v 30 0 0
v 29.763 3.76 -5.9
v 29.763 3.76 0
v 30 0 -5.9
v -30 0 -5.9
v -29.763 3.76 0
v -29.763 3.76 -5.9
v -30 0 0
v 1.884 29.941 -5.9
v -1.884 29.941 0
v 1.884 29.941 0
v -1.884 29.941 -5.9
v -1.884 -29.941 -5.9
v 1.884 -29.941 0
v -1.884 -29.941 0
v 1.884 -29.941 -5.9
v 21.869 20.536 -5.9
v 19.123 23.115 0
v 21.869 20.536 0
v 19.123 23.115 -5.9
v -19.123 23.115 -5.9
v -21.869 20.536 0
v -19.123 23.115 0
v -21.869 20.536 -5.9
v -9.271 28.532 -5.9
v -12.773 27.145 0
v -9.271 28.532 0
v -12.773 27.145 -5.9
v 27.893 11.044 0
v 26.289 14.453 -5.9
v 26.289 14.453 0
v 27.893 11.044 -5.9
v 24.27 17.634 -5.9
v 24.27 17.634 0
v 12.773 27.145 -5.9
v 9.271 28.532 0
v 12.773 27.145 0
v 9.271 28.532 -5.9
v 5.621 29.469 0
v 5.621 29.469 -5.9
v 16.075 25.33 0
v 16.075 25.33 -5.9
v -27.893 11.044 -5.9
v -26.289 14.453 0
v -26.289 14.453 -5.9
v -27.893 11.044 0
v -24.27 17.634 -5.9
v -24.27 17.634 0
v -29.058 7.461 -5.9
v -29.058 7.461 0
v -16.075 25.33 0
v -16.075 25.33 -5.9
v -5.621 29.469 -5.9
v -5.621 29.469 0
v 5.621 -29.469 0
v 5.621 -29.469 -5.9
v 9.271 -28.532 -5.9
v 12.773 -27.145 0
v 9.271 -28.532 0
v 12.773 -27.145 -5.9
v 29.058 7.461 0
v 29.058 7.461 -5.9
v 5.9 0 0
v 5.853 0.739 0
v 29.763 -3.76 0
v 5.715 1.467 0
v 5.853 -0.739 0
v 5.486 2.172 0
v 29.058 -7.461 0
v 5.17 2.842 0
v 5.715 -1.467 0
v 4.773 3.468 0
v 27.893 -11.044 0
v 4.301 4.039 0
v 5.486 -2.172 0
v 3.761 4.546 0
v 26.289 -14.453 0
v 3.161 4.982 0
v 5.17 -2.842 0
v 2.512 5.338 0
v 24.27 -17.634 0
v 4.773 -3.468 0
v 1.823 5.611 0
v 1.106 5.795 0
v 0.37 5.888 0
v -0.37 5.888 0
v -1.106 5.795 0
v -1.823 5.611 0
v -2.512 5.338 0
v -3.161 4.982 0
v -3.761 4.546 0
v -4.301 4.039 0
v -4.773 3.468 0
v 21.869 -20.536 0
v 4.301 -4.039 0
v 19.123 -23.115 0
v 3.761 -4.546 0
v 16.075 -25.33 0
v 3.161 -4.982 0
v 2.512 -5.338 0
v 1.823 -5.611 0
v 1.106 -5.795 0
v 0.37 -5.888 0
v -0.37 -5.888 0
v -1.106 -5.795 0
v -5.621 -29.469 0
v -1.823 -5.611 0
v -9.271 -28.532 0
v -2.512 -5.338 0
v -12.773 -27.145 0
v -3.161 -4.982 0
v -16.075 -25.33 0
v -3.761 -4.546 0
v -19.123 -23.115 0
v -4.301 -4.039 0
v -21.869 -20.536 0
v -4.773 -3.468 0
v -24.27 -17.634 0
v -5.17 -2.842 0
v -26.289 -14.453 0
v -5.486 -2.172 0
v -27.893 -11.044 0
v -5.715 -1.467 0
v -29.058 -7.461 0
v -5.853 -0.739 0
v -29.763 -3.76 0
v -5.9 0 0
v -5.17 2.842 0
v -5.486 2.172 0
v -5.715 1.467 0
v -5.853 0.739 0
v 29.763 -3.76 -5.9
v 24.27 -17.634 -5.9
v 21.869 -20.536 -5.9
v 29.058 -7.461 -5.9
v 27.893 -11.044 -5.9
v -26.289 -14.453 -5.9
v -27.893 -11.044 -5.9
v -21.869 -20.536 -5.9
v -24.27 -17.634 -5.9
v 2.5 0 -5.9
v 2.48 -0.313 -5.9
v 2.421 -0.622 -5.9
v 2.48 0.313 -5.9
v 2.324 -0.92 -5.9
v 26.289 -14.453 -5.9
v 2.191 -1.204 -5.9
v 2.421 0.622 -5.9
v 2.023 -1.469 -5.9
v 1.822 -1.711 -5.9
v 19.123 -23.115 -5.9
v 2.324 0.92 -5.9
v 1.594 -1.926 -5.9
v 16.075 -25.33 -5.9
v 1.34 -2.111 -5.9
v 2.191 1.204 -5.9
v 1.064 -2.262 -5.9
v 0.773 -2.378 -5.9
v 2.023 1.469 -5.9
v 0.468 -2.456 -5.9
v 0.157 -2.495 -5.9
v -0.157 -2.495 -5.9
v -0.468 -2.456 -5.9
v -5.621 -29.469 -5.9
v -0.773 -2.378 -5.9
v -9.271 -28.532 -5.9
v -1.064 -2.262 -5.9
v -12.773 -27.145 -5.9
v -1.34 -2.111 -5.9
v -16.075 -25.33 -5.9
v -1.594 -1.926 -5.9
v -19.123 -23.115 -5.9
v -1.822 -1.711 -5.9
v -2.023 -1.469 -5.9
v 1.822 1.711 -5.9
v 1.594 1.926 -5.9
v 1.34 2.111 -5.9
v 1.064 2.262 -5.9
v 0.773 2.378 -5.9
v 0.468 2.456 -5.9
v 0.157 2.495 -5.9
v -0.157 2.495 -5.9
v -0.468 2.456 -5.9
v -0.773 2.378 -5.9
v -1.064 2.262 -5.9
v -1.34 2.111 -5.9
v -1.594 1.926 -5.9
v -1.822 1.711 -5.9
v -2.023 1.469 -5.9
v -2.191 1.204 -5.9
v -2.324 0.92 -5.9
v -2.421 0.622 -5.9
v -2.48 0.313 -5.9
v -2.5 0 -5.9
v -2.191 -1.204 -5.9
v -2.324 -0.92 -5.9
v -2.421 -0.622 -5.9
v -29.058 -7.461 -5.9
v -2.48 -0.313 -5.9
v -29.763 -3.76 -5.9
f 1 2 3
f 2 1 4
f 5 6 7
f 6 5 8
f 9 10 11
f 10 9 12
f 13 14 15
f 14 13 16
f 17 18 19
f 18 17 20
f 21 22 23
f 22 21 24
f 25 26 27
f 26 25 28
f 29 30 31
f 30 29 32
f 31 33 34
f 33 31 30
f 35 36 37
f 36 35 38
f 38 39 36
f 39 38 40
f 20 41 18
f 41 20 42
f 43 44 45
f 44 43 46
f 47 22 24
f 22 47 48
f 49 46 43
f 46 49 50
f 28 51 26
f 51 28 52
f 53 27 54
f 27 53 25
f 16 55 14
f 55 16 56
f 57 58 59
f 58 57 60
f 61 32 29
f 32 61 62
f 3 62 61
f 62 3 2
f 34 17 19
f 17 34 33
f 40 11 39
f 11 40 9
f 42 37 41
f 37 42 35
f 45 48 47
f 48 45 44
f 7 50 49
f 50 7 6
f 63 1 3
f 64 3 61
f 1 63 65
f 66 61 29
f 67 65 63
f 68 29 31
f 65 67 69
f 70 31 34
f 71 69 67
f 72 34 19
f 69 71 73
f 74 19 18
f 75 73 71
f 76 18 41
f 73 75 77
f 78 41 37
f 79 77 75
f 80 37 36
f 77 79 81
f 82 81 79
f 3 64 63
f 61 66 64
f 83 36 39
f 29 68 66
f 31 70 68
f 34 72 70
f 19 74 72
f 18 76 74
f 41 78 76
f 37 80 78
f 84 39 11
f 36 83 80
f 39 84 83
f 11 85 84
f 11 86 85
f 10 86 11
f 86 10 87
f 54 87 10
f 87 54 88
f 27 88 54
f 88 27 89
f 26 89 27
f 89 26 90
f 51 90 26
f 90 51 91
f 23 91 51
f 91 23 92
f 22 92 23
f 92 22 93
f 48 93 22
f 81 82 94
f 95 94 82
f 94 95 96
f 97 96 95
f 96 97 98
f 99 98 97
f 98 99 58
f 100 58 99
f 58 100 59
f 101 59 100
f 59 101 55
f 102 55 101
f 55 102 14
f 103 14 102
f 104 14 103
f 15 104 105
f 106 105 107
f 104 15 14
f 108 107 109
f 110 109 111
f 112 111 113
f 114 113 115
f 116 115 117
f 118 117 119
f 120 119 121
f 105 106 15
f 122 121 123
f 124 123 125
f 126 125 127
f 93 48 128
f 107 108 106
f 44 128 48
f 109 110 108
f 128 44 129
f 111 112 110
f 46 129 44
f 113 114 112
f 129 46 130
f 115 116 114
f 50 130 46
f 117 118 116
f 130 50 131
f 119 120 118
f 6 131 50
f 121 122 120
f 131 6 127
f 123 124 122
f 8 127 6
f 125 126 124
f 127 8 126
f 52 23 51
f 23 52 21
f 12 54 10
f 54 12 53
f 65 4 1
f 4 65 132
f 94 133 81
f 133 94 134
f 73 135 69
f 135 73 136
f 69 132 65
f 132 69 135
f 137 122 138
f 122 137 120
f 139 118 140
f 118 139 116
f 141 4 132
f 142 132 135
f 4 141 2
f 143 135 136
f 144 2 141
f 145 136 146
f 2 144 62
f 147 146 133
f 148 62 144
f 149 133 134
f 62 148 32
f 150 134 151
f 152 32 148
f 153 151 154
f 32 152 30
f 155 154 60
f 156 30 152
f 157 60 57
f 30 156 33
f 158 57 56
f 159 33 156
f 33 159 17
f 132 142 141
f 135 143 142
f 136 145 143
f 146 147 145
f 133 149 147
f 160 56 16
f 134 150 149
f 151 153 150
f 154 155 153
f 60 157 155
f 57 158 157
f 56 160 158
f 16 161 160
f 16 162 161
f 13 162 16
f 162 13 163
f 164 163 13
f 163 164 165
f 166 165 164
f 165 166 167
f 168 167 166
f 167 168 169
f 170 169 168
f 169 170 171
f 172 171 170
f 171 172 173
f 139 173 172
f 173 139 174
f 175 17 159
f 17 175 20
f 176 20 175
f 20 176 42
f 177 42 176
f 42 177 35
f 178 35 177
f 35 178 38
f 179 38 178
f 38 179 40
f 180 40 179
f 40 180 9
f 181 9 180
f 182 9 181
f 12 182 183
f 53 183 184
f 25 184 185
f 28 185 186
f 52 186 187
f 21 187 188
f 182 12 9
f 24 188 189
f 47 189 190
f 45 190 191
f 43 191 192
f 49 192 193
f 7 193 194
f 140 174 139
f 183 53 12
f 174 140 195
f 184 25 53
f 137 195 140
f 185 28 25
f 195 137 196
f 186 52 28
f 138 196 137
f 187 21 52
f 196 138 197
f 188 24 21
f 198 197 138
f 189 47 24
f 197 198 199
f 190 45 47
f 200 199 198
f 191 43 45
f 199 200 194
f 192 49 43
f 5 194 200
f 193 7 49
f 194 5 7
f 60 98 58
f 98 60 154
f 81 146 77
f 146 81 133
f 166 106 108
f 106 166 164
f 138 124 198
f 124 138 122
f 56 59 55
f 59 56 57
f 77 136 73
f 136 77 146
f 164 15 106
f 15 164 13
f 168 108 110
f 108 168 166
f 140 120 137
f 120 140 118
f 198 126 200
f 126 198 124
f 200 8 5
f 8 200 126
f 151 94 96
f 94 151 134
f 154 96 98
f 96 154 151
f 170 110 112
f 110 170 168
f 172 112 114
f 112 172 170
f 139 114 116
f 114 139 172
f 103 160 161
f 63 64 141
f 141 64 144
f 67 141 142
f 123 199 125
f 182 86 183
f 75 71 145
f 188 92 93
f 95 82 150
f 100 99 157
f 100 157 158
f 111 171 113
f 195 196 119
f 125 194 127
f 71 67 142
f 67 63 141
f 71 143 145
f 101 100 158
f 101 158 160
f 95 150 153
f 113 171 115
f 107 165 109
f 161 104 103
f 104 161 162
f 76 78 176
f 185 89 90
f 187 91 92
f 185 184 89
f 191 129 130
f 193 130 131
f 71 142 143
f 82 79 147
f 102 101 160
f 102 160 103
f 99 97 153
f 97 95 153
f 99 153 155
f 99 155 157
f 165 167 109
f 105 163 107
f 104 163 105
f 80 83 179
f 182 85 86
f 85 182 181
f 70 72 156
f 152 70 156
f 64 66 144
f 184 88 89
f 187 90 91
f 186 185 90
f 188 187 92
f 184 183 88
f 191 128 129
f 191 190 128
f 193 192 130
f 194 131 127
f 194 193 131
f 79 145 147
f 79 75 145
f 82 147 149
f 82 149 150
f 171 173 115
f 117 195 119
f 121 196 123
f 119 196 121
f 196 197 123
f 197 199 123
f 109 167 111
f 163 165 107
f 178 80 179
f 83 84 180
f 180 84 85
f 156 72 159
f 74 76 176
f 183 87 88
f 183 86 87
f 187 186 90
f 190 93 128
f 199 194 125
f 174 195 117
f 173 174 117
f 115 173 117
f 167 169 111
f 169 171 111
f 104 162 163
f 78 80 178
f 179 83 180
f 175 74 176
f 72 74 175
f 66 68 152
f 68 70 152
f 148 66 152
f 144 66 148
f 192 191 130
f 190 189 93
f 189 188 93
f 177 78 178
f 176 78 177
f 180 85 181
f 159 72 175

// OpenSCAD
$fn = 50;


difference() {
	union() {
		translate(v = [0, 0, -5.9000000000]) {
			cylinder(h = 5.9000000000, r = 30.0000000000);
		}
		translate(v = [0, 0, -5.9000000000]) {
			cylinder(h = 5.9000000000, r = 2.8750000000);
		}
	}
	union() {
		translate(v = [0, 0, 0]) {
			rotate(a = [0, 0, 0]) {
				difference() {
					union() {
						#translate(v = [0, 0, -5.9000000000]) {
							cylinder(h = 5.9000000000, r = 2.2500000000);
						}
						#translate(v = [0, 0, -5.9000000000]) {
							cylinder(h = 5.9000000000, r1 = 2.5000000000, r2 = 5.9000000000);
						}
						#translate(v = [0, 0, -5.9000000000]) {
							cylinder(h = 5.9000000000, r = 2.5000000000);
						}
						#translate(v = [0, 0, -5.9000000000]) {
							cylinder(h = 5.9000000000, r = 2.2500000000);
						}
					}
					union();
				}
			}
		}
	}
}
